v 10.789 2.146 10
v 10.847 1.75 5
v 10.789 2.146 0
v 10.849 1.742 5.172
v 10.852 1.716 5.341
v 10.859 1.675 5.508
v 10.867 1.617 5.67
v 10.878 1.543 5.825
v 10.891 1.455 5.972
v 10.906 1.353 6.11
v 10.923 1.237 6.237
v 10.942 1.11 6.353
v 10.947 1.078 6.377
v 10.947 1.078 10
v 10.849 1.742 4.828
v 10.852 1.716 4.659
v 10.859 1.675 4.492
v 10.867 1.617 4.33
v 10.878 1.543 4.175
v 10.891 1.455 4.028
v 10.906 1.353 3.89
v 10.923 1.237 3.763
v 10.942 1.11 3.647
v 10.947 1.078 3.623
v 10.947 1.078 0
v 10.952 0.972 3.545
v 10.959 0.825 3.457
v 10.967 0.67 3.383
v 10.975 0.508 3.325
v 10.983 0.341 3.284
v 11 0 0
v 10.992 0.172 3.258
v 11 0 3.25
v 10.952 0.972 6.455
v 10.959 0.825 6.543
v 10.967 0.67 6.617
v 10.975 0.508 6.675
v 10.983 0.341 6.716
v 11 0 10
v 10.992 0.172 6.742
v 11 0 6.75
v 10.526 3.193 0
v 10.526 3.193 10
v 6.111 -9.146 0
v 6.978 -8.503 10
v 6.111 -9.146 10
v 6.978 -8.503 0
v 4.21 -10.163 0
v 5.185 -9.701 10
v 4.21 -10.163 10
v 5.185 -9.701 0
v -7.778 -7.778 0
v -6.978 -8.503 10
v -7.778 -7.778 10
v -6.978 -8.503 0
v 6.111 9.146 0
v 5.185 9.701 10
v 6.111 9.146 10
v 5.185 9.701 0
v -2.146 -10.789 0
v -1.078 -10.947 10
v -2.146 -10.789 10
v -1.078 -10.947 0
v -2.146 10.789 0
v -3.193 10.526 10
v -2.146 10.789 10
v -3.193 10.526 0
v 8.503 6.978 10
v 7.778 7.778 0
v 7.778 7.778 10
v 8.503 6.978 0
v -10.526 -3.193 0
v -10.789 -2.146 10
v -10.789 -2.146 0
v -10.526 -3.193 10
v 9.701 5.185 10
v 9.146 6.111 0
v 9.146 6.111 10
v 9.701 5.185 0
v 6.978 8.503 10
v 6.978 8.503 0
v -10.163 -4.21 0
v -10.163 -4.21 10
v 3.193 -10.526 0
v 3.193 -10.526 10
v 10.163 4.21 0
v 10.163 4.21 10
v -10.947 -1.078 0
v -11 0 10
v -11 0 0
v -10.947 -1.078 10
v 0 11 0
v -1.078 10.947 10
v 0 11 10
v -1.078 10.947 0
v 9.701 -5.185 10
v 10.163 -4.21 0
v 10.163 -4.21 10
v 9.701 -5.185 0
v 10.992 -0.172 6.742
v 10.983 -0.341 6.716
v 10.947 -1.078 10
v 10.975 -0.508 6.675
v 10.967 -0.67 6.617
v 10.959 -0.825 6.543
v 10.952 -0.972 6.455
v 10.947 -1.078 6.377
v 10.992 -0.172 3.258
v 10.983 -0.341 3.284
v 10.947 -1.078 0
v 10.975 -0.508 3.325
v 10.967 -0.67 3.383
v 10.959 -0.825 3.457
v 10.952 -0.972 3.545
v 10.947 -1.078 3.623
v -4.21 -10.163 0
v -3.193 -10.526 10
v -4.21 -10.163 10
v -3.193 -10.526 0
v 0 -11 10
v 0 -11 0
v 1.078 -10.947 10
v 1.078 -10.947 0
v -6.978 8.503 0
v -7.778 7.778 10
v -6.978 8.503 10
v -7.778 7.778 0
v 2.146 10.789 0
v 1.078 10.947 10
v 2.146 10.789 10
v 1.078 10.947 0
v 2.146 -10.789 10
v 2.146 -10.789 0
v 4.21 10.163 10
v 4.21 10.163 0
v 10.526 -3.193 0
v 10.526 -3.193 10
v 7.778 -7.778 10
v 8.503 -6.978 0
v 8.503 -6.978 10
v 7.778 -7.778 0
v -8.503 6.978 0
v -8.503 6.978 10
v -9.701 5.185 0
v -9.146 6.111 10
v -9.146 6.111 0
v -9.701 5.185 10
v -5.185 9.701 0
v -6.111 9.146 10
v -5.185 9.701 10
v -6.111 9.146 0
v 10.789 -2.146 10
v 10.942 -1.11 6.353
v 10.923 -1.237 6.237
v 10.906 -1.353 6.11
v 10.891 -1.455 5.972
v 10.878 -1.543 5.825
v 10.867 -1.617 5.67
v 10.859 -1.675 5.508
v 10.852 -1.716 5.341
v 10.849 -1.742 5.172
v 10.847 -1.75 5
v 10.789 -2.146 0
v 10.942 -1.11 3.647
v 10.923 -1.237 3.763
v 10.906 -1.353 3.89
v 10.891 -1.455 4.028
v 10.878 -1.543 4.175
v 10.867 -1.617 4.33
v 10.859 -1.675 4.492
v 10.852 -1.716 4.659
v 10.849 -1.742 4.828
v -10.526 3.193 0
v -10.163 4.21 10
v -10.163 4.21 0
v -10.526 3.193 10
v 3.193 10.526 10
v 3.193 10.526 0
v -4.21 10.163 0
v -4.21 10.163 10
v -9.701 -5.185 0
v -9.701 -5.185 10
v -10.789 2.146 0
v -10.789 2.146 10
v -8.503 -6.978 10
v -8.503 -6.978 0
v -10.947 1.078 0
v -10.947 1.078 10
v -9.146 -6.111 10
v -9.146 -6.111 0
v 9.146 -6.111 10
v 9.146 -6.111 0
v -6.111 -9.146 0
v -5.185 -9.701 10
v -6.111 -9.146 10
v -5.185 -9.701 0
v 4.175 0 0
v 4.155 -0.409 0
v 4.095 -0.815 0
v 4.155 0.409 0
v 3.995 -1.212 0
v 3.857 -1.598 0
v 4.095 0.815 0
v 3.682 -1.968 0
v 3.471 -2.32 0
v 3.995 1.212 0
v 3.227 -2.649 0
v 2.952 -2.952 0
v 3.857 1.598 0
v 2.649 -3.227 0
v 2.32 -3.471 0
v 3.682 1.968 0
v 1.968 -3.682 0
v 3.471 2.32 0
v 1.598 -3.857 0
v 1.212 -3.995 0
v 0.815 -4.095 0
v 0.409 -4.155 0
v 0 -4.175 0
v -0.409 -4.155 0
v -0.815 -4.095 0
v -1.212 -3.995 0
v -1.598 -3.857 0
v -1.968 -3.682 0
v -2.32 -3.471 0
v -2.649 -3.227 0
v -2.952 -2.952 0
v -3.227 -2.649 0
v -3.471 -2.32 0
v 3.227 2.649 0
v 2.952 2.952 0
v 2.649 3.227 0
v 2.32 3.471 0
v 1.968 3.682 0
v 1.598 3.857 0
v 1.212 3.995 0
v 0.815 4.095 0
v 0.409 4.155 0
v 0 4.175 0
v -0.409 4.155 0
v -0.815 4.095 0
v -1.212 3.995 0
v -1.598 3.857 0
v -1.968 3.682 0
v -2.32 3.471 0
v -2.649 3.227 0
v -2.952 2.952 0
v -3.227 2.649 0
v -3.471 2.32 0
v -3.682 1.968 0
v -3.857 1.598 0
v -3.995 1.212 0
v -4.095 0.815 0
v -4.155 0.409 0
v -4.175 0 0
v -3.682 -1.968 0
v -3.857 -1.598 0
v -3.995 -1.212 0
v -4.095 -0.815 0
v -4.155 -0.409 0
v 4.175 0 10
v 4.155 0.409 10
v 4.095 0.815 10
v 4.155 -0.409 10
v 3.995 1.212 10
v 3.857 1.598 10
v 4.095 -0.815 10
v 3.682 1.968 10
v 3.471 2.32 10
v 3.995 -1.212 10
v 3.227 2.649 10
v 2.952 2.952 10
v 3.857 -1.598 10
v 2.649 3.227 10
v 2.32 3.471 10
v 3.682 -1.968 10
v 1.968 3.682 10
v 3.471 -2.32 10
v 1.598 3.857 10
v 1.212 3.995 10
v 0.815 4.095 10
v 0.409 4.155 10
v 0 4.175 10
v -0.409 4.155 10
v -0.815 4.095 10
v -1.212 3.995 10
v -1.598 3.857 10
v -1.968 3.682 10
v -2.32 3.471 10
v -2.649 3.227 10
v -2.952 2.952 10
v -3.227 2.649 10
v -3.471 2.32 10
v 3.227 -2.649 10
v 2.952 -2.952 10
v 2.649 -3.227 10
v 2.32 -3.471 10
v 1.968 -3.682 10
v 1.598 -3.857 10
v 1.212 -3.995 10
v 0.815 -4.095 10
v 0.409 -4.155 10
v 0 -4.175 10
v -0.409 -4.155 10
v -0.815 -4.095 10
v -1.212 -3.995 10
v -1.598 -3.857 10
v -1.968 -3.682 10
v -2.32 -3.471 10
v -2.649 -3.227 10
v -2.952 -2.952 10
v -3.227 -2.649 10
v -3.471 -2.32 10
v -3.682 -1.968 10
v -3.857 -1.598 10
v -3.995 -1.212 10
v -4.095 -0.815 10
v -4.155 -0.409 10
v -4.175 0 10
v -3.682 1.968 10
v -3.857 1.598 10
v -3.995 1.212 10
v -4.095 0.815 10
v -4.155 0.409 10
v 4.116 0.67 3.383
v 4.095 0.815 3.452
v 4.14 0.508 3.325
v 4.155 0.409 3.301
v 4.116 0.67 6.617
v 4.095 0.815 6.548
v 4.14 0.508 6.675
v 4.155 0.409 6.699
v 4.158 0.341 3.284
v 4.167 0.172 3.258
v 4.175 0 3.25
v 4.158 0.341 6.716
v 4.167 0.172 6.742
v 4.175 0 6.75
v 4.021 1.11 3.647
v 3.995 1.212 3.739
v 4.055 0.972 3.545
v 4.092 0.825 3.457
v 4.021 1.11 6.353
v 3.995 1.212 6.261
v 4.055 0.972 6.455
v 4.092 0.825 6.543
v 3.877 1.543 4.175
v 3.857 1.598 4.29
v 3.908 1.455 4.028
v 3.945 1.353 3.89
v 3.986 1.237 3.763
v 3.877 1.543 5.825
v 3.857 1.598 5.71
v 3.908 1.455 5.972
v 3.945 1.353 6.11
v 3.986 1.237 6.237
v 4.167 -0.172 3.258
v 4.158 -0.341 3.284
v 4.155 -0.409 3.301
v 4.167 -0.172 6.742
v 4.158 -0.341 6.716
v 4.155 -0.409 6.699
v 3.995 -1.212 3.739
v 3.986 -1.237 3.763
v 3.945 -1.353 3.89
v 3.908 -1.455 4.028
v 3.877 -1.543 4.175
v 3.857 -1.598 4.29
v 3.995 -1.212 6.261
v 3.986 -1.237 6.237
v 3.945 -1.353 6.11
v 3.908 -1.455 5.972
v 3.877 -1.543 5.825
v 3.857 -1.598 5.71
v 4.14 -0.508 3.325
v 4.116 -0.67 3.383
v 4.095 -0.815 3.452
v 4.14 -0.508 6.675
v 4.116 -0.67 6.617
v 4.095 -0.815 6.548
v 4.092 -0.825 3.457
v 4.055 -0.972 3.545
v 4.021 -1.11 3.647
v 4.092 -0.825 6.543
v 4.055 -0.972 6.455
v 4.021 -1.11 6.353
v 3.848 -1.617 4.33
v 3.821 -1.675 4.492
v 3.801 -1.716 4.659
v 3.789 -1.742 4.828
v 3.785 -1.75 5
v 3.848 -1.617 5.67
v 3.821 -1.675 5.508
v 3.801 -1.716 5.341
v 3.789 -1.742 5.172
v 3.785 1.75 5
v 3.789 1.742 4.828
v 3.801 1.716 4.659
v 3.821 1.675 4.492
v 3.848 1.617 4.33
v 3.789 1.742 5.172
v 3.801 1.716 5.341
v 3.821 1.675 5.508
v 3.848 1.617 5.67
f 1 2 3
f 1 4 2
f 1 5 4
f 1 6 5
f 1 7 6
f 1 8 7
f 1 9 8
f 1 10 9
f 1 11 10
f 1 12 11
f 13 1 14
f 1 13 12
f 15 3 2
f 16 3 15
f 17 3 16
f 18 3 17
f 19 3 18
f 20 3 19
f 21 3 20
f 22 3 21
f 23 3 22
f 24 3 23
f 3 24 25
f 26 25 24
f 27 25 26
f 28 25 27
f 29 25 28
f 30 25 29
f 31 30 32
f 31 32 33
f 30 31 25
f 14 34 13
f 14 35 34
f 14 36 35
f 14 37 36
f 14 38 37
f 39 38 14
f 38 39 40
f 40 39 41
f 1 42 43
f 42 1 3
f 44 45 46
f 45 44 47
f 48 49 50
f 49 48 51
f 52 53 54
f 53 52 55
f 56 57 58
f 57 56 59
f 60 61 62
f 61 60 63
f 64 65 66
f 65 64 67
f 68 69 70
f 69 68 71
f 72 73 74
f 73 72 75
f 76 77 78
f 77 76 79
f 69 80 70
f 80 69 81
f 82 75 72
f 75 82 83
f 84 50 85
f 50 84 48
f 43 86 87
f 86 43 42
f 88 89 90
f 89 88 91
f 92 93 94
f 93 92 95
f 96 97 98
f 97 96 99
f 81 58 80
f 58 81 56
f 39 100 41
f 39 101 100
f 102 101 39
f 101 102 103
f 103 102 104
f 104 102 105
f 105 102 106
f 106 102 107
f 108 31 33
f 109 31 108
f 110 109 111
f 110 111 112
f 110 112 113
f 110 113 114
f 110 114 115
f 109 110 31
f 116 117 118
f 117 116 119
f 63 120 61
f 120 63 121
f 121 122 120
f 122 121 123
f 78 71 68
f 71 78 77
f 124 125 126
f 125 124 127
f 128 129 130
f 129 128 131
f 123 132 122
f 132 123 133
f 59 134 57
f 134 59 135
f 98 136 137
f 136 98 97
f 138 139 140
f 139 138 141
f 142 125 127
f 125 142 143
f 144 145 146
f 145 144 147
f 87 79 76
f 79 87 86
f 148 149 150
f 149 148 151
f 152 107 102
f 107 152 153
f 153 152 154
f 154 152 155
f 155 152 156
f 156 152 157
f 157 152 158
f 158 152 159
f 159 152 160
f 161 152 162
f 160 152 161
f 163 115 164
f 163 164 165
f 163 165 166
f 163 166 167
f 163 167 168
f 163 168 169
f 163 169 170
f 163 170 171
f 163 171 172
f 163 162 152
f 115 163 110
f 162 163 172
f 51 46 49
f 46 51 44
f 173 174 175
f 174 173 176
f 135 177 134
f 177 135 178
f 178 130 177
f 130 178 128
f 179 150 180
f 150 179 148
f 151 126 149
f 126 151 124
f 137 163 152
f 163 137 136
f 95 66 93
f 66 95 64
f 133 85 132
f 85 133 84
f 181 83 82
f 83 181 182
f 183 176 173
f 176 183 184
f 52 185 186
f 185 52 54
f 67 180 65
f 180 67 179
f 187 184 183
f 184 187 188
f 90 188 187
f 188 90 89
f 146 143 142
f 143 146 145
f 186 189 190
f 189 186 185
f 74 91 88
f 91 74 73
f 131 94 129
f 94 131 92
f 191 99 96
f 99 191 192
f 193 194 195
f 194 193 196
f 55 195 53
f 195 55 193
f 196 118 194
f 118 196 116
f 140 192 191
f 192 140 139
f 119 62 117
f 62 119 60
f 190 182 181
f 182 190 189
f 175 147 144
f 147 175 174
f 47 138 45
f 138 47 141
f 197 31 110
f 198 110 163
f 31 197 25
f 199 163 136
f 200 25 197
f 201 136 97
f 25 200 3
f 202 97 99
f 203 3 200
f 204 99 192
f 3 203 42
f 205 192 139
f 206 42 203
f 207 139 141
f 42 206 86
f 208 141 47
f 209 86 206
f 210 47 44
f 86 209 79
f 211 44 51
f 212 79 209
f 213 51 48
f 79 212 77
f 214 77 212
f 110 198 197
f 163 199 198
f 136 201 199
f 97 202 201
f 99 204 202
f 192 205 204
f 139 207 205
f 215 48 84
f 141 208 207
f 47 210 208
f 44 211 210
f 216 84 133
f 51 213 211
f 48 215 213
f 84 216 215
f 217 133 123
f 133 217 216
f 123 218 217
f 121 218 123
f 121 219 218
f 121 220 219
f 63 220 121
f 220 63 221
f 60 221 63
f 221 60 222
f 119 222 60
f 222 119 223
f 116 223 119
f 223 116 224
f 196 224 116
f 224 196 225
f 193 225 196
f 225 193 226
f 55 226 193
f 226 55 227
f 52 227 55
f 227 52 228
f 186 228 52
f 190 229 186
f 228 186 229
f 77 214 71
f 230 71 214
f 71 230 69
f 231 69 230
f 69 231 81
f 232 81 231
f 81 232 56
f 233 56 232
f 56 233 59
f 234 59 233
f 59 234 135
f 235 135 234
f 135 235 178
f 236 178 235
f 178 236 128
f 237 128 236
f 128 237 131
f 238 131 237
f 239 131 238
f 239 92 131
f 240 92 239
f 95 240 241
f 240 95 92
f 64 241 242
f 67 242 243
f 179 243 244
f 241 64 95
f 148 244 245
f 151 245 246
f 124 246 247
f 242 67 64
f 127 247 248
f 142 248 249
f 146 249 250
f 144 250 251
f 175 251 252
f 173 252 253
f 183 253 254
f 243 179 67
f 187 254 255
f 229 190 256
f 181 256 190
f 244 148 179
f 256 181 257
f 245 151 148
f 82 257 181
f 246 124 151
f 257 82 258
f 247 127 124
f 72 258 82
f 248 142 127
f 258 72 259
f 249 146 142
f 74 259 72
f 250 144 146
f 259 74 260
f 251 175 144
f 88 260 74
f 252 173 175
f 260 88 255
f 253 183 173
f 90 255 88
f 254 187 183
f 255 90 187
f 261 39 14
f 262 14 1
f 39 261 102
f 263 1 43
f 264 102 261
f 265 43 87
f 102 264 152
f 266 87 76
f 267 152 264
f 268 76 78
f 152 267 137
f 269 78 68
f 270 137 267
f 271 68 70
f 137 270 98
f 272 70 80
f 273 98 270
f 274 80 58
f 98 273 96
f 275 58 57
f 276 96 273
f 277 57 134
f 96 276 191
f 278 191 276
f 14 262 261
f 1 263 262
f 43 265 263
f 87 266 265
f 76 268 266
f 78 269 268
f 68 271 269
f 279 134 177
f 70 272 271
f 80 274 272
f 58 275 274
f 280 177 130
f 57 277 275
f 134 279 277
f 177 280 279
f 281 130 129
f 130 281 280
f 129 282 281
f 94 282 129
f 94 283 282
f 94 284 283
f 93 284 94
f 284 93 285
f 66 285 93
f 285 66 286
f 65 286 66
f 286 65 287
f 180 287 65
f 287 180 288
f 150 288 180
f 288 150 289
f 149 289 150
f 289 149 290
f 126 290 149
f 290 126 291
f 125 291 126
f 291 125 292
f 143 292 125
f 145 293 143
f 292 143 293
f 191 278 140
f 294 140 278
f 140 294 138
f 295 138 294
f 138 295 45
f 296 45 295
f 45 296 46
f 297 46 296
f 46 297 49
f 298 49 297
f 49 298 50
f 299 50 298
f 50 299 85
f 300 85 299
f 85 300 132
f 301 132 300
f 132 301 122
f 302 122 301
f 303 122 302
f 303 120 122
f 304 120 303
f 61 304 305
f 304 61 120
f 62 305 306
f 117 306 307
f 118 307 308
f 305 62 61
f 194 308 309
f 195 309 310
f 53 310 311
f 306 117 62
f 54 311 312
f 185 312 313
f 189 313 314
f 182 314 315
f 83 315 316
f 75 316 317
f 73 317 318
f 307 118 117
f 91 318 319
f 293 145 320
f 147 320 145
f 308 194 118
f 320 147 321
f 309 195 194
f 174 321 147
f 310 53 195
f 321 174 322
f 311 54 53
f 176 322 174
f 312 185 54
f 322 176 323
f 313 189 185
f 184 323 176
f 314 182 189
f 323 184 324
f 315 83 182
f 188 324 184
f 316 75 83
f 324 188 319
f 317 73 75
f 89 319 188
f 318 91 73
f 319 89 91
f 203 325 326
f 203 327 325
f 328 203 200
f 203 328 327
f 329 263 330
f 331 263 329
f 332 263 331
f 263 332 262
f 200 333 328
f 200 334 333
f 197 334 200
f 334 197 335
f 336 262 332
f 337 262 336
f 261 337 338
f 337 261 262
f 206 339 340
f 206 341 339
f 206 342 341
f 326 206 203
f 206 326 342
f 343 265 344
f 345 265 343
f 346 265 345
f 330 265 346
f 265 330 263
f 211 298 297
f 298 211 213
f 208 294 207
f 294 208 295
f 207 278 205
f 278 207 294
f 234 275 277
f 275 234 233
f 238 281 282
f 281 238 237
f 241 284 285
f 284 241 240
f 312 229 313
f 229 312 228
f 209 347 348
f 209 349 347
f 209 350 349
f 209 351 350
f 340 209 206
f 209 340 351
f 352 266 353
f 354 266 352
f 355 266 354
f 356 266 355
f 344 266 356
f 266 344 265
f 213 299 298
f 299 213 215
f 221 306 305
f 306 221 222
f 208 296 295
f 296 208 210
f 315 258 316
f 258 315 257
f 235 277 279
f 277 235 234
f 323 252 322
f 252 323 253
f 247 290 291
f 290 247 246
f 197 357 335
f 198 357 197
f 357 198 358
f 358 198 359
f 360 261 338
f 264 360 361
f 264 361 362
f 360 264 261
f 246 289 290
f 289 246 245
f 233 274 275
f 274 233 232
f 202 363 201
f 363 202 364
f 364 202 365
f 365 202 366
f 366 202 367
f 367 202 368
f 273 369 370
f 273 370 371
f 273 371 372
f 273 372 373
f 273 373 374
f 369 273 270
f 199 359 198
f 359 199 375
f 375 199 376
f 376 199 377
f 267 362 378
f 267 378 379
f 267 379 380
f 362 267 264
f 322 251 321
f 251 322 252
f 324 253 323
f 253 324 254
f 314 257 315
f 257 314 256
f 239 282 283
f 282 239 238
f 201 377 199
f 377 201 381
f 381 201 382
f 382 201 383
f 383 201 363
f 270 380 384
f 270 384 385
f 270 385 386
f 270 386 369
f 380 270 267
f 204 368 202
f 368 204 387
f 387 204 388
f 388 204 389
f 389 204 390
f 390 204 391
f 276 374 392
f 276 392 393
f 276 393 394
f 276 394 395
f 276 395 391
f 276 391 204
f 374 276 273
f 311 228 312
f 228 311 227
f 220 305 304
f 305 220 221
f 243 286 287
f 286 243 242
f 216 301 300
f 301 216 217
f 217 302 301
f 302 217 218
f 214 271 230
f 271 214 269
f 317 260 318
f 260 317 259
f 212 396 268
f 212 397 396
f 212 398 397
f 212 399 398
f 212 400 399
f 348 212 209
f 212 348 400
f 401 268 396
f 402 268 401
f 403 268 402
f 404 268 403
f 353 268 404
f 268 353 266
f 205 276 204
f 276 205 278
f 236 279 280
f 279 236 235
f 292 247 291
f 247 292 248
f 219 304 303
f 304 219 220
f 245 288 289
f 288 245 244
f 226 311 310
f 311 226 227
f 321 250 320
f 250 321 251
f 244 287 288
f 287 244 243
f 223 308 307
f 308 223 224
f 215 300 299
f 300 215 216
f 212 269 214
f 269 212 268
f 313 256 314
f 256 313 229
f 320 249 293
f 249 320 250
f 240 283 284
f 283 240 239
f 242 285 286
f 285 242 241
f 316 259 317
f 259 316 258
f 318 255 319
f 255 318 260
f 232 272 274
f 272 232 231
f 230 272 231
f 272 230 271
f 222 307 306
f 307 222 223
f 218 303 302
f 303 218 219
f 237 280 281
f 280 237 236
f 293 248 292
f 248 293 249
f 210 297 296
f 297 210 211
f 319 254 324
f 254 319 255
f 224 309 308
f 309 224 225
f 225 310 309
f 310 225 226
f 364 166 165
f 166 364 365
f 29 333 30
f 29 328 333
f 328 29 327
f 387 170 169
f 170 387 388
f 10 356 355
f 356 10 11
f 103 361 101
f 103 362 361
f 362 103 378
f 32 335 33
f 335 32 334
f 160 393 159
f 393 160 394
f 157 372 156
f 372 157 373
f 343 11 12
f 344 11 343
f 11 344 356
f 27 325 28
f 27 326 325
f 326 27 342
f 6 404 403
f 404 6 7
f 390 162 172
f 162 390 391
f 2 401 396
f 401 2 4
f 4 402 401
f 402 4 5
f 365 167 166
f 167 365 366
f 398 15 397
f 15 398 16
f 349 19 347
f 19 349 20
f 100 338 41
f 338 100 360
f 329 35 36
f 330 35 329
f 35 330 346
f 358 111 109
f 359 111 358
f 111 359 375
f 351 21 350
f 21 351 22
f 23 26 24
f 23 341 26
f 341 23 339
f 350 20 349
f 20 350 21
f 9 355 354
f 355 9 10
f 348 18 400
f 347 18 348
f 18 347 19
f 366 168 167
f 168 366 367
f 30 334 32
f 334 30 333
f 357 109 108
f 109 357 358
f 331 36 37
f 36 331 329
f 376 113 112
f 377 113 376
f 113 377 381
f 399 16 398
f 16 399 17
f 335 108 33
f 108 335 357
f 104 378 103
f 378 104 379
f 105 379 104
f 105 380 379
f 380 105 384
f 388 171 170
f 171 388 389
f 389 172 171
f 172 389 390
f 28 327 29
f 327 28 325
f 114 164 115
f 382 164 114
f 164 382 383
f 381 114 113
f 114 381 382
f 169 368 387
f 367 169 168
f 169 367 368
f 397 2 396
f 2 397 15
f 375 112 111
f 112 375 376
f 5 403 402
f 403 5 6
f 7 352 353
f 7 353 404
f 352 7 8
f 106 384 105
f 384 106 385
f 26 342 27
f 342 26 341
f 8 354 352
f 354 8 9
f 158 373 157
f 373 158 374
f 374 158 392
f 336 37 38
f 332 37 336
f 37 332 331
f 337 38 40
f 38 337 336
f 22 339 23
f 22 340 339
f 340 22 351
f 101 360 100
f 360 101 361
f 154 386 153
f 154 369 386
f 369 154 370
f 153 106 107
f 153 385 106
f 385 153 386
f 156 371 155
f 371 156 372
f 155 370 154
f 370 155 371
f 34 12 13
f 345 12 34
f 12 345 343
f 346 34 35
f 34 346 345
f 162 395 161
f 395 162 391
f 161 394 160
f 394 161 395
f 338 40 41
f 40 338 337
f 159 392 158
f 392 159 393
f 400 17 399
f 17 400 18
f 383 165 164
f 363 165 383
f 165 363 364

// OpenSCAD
// file: parameters.scad
// =============================================================================
// Gen-AQ Dual-rotor copper-centroid ultra AFPM - WOUND-AWARE (HARD GATE)
// PRIMARY challenger vs Gen-AN. Magnets @ R=39.0 + 205 t + former_web 1.25 -> m2m 4.71.
// =============================================================================

// --- Wire / wind budget (26 AWG, ~1 lb spool ~ 390 m bare-equiv) --------------
wire_awg            = 26;
wire_od             = 0.45;     // insulated OD mm
turns               = 205;      // +5 vs Gen-AN 200
fill                = 0.70;
layers_per_face     = 2;        // axial layers proud of EACH flange
wind_build_axial    = layers_per_face * wire_od * fill;   // 0.63 mm
wind_build_radial   = 3 * wire_od * fill;                 // 0.945 mm

// --- Pancake former (bare STL) -----------------------------------------------
coil_id_r           = 15.0;     // copper-centroid window centered ~R=39.0
coil_od_r           = 63.0;
span_deg            = 26.0;     // 12 stations x 30 deg pitch
former_web          = 1.25;     // thinner vs AN 1.30 (print-safe >=1.20 LB)
flange_t            = 0.60;
wall                = 1.2;
slot_w              = 2.4;
mount_hole          = 3.5;
tab_len             = 7.0;

former_bare_h       = former_web + 2 * flange_t;            // 2.45 mm
coil_envelope_h     = former_bare_h + 2 * wind_build_axial; // 3.71 mm

// --- Running clearance (magnet face -> WOUND face) EACH side ------------------
run_clear           = 0.50;     // PASS floor >= 0.5
gap_spacer_h        = run_clear + wind_build_axial;         // 1.13 mm
m2m                 = coil_envelope_h + 2 * run_clear;      // 4.71 mm (beats Gen-AN 4.76)

// --- Mid stator (12 pancakes 3ph; winds proud both faces) ---------------------
coil_stations       = 12;
bay_r_in            = coil_id_r - 2.0 - wind_build_radial;
bay_r_out           = coil_od_r + 2.0 + wind_build_radial;
bay_span            = span_deg + 4.0;
bay_offset          = 2.0;
stator_thick        = former_bare_h;                        // winds proud +/-Z
stator_od           = 160.0;
shaft_clear_stator  = 34.0;
coil_mount_r        = 25.0;

// --- Rotors (x2) - 8xO20 @ R=39.0 (copper centroid) + 24xO5 Halbach ----------
large_pocket_d      = 20.3;
small_pocket_d      = 5.3;
pocket_h            = 5.2;
large_n             = 8;
R_large             = 39.0;     // covers ~29-49 over copper centroid ~39.0
R_small_inner       = 24.0;
R_small_mid         = 39.0;
R_small_outer       = 56.0;
carrier_od          = 156.0;
carrier_thick       = 7.5;
hub_h               = 10.0;
hub_od              = 30.0;
rotor_b_offset_deg  = 22.5;

// --- Modular MAX interface (Gen-E family) ------------------------------------
shaft_bore          = 8.35;
bearing_d           = 21.85;
bearing_h           = 7.2;
m3_clear            = 3.5;
bolt_r_inner        = 36.0;
bolt_n_inner        = 6;
flange_bolt_r       = 72.0;
flange_bolt_n       = 6;
brace_r             = 68.0;
brace_d             = 4.3;
brace_n             = 4;

spacer_pad_od       = 14.0;
spacer_pad_id       = m3_clear;
endbell_od          = 160.0;
endbell_thick       = 8.0;
endbell_shaft_clear = 10.0;

$fn = 64;
// main file
// Gen-AQ shaft collar — print ×2–4
include <parameters.scad>;
$fn = 64;
od = 22; id = shaft_bore; h = 10; set_d = 3.5;
difference() {
    cylinder(d=od, h=h);
    translate([0, 0, -0.1]) cylinder(d=id, h=h + 0.2);
    translate([0, 0, h/2]) rotate([0, 90, 0]) cylinder(d=set_d, h=od);
}
